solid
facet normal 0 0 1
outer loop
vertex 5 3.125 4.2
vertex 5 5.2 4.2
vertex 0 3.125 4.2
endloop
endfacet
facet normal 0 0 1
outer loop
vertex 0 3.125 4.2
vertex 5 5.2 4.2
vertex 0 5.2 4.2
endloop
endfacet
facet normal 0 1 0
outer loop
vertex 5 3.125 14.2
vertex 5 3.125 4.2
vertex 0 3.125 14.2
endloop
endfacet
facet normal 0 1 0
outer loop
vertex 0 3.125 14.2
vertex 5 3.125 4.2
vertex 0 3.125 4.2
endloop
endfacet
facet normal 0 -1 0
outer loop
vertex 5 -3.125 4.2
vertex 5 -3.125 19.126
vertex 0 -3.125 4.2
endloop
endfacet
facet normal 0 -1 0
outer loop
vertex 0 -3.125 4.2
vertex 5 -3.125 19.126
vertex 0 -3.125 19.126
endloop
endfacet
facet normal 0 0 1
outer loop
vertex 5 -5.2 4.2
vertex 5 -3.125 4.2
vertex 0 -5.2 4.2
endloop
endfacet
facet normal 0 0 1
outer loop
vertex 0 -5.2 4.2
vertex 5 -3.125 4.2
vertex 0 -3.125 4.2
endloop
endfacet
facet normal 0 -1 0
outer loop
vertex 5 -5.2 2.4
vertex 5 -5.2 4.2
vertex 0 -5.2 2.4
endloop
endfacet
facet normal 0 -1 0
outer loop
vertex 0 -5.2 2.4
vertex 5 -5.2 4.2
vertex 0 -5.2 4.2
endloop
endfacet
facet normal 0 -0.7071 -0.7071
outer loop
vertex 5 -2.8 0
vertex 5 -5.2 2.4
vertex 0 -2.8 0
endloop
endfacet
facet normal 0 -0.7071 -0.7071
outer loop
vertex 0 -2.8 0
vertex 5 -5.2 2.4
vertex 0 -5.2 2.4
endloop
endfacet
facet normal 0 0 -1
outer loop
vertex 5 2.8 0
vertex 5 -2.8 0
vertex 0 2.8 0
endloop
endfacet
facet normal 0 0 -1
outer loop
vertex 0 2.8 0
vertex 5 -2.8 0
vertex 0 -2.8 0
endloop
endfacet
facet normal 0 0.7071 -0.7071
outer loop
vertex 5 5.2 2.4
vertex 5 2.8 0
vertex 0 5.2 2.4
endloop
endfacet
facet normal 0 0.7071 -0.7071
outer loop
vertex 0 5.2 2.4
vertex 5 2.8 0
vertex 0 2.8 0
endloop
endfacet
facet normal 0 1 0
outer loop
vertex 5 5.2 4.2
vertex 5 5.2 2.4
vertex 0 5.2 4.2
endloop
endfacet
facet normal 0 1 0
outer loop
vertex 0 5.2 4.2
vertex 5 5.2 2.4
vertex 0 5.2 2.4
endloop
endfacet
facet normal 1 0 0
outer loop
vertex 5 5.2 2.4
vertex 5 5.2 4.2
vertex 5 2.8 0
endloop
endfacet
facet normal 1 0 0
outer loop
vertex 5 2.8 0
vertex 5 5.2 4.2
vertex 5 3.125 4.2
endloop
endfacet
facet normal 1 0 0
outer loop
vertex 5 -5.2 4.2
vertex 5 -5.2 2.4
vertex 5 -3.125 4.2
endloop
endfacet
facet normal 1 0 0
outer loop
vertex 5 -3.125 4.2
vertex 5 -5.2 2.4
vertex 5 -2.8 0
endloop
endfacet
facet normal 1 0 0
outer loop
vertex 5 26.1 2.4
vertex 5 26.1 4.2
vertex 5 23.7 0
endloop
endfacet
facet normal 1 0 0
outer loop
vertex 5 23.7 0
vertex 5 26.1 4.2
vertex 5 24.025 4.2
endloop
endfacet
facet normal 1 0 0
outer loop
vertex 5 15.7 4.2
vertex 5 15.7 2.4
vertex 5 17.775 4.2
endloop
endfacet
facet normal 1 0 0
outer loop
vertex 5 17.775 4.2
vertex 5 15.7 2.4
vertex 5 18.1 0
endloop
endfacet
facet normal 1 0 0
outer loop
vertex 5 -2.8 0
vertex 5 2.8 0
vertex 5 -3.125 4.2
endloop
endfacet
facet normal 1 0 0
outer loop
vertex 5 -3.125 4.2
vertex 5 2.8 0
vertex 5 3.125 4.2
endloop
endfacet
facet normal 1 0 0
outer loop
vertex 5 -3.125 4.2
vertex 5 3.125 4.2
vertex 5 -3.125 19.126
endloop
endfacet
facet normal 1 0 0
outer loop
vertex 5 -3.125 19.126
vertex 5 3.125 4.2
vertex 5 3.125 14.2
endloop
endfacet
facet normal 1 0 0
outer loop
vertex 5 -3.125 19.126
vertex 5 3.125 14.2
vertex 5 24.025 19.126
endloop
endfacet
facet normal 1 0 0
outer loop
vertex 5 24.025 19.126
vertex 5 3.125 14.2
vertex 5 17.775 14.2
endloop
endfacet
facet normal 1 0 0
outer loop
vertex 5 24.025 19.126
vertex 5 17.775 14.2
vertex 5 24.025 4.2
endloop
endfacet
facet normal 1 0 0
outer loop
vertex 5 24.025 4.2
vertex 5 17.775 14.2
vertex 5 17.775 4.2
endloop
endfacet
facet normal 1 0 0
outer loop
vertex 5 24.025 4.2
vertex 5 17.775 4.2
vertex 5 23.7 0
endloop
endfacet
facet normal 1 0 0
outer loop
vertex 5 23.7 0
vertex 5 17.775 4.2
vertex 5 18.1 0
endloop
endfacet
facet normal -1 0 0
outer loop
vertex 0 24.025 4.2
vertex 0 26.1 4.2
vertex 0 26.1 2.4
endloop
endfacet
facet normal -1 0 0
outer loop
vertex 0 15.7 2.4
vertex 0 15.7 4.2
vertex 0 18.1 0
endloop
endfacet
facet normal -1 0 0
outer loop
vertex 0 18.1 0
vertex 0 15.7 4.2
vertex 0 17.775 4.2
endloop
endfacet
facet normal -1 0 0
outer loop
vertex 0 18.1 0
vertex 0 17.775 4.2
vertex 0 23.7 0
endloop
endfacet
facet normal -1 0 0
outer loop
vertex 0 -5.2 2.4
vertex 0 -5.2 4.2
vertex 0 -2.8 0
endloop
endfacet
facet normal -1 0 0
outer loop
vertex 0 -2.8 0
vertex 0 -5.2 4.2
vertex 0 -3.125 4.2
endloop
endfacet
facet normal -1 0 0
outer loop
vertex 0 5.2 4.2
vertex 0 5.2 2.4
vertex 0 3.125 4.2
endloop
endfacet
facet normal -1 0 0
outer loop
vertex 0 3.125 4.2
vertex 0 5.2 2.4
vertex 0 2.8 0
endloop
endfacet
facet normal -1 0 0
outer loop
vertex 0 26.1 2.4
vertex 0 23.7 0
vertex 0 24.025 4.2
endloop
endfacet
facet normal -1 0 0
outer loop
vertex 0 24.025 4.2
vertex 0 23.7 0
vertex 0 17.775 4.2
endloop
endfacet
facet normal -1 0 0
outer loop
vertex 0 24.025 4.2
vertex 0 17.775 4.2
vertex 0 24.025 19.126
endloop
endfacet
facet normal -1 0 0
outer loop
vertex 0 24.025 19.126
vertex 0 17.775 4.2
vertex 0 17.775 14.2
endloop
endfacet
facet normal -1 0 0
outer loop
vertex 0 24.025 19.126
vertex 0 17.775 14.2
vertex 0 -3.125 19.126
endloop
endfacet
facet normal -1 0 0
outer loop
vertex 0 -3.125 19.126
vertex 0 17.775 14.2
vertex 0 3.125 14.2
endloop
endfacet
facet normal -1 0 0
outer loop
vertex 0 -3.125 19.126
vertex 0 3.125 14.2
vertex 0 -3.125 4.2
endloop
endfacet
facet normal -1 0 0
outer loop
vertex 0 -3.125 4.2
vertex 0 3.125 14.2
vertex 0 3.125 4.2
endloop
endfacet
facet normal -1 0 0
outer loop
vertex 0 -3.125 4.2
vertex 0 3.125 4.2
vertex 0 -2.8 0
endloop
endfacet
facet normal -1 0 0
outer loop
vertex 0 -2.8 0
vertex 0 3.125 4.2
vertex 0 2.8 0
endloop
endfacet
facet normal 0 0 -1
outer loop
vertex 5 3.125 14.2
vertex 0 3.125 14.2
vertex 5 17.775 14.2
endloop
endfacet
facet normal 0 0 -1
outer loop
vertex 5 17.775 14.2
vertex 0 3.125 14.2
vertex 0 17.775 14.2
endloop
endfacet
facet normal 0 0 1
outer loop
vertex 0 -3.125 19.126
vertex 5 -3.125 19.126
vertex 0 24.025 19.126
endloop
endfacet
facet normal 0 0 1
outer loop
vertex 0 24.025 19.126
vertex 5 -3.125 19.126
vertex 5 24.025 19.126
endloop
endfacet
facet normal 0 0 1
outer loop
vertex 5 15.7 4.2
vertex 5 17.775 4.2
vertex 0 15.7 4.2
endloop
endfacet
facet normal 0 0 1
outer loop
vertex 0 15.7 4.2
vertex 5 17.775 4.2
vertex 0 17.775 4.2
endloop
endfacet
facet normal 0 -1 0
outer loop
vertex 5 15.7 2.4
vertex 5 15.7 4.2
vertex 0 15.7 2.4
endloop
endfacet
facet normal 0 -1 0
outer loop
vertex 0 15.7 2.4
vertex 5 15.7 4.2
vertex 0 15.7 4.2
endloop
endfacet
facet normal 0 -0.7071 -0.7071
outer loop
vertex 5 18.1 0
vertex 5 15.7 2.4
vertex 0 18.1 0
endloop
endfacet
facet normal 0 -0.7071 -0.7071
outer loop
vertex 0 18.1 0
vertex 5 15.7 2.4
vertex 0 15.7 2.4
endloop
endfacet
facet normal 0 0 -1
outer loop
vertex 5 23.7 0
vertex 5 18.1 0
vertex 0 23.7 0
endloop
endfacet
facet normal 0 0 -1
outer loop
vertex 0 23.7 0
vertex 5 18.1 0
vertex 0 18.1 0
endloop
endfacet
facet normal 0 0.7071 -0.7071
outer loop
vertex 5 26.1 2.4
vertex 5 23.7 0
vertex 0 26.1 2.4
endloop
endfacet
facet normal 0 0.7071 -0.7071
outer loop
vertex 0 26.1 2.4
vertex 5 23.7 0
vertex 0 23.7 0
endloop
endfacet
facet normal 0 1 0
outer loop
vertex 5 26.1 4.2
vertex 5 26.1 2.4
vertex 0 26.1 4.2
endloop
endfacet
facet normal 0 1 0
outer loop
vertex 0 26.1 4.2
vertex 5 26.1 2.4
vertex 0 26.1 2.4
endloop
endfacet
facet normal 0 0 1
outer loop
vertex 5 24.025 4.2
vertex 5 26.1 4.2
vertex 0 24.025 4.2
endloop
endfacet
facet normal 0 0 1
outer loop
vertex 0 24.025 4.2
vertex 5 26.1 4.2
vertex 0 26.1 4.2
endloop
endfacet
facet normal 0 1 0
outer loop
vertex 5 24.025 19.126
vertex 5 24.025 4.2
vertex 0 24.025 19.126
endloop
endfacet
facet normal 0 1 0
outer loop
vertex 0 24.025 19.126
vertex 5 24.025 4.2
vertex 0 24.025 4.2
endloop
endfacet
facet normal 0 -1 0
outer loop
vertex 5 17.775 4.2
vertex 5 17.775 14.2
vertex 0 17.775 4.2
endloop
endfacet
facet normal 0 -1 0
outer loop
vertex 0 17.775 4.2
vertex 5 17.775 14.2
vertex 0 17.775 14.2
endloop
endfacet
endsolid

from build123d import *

# Parameters (mm, degrees)
BOSS_EXTRUDE1_DEPTH = 5
SKETCH3_W           = 4.925645198
SKETCH3_H           = 33.799871634
BOSS_EXTRUDE2_DEPTH = 5
SKETCH4_W           = 4.925645198
SKETCH4_H           = 6.649871634
CUT_EXTRUDE1_DEPTH  = 37.492986368


with BuildPart() as part:
    # Sketch2 → Boss-Extrude1 (new body)
    with BuildSketch(Plane(origin=(0, 0, 0), x_dir=(0, 0, -1), z_dir=(1, 0, 0))):
        Polygon((-4.2, 3.125), (-14.2, 3.125), (-14.2, -3.125), (-4.2, -3.125), (-4.2, -5.2), (-2.4, -5.2), (0, -2.8), (0, 2.8), (-2.4, 5.2), (-4.2, 5.2), align=None)
    boss_extrude1 = extrude(amount=BOSS_EXTRUDE1_DEPTH)

    # Sketch3 → Boss-Extrude2 (add)
    with BuildSketch(Plane.ZY):
        with Locations((16.662822599, 13.774935817)):
            Rectangle(SKETCH3_W, SKETCH3_H)
    extrude(amount=-BOSS_EXTRUDE2_DEPTH)

    # Mirror2: Boss-Extrude1 across plane
    add(boss_extrude1.mirror(Plane.ZX.offset(10.45)))

    # Sketch4 → Cut-Extrude1 (cut, through all)
    with BuildSketch(Plane.ZY):
        with Locations((16.662822599, 27.349935817)):
            Rectangle(SKETCH4_W, SKETCH4_H)
    extrude(amount=-CUT_EXTRUDE1_DEPTH, mode=Mode.SUBTRACT)


solid = part.part
